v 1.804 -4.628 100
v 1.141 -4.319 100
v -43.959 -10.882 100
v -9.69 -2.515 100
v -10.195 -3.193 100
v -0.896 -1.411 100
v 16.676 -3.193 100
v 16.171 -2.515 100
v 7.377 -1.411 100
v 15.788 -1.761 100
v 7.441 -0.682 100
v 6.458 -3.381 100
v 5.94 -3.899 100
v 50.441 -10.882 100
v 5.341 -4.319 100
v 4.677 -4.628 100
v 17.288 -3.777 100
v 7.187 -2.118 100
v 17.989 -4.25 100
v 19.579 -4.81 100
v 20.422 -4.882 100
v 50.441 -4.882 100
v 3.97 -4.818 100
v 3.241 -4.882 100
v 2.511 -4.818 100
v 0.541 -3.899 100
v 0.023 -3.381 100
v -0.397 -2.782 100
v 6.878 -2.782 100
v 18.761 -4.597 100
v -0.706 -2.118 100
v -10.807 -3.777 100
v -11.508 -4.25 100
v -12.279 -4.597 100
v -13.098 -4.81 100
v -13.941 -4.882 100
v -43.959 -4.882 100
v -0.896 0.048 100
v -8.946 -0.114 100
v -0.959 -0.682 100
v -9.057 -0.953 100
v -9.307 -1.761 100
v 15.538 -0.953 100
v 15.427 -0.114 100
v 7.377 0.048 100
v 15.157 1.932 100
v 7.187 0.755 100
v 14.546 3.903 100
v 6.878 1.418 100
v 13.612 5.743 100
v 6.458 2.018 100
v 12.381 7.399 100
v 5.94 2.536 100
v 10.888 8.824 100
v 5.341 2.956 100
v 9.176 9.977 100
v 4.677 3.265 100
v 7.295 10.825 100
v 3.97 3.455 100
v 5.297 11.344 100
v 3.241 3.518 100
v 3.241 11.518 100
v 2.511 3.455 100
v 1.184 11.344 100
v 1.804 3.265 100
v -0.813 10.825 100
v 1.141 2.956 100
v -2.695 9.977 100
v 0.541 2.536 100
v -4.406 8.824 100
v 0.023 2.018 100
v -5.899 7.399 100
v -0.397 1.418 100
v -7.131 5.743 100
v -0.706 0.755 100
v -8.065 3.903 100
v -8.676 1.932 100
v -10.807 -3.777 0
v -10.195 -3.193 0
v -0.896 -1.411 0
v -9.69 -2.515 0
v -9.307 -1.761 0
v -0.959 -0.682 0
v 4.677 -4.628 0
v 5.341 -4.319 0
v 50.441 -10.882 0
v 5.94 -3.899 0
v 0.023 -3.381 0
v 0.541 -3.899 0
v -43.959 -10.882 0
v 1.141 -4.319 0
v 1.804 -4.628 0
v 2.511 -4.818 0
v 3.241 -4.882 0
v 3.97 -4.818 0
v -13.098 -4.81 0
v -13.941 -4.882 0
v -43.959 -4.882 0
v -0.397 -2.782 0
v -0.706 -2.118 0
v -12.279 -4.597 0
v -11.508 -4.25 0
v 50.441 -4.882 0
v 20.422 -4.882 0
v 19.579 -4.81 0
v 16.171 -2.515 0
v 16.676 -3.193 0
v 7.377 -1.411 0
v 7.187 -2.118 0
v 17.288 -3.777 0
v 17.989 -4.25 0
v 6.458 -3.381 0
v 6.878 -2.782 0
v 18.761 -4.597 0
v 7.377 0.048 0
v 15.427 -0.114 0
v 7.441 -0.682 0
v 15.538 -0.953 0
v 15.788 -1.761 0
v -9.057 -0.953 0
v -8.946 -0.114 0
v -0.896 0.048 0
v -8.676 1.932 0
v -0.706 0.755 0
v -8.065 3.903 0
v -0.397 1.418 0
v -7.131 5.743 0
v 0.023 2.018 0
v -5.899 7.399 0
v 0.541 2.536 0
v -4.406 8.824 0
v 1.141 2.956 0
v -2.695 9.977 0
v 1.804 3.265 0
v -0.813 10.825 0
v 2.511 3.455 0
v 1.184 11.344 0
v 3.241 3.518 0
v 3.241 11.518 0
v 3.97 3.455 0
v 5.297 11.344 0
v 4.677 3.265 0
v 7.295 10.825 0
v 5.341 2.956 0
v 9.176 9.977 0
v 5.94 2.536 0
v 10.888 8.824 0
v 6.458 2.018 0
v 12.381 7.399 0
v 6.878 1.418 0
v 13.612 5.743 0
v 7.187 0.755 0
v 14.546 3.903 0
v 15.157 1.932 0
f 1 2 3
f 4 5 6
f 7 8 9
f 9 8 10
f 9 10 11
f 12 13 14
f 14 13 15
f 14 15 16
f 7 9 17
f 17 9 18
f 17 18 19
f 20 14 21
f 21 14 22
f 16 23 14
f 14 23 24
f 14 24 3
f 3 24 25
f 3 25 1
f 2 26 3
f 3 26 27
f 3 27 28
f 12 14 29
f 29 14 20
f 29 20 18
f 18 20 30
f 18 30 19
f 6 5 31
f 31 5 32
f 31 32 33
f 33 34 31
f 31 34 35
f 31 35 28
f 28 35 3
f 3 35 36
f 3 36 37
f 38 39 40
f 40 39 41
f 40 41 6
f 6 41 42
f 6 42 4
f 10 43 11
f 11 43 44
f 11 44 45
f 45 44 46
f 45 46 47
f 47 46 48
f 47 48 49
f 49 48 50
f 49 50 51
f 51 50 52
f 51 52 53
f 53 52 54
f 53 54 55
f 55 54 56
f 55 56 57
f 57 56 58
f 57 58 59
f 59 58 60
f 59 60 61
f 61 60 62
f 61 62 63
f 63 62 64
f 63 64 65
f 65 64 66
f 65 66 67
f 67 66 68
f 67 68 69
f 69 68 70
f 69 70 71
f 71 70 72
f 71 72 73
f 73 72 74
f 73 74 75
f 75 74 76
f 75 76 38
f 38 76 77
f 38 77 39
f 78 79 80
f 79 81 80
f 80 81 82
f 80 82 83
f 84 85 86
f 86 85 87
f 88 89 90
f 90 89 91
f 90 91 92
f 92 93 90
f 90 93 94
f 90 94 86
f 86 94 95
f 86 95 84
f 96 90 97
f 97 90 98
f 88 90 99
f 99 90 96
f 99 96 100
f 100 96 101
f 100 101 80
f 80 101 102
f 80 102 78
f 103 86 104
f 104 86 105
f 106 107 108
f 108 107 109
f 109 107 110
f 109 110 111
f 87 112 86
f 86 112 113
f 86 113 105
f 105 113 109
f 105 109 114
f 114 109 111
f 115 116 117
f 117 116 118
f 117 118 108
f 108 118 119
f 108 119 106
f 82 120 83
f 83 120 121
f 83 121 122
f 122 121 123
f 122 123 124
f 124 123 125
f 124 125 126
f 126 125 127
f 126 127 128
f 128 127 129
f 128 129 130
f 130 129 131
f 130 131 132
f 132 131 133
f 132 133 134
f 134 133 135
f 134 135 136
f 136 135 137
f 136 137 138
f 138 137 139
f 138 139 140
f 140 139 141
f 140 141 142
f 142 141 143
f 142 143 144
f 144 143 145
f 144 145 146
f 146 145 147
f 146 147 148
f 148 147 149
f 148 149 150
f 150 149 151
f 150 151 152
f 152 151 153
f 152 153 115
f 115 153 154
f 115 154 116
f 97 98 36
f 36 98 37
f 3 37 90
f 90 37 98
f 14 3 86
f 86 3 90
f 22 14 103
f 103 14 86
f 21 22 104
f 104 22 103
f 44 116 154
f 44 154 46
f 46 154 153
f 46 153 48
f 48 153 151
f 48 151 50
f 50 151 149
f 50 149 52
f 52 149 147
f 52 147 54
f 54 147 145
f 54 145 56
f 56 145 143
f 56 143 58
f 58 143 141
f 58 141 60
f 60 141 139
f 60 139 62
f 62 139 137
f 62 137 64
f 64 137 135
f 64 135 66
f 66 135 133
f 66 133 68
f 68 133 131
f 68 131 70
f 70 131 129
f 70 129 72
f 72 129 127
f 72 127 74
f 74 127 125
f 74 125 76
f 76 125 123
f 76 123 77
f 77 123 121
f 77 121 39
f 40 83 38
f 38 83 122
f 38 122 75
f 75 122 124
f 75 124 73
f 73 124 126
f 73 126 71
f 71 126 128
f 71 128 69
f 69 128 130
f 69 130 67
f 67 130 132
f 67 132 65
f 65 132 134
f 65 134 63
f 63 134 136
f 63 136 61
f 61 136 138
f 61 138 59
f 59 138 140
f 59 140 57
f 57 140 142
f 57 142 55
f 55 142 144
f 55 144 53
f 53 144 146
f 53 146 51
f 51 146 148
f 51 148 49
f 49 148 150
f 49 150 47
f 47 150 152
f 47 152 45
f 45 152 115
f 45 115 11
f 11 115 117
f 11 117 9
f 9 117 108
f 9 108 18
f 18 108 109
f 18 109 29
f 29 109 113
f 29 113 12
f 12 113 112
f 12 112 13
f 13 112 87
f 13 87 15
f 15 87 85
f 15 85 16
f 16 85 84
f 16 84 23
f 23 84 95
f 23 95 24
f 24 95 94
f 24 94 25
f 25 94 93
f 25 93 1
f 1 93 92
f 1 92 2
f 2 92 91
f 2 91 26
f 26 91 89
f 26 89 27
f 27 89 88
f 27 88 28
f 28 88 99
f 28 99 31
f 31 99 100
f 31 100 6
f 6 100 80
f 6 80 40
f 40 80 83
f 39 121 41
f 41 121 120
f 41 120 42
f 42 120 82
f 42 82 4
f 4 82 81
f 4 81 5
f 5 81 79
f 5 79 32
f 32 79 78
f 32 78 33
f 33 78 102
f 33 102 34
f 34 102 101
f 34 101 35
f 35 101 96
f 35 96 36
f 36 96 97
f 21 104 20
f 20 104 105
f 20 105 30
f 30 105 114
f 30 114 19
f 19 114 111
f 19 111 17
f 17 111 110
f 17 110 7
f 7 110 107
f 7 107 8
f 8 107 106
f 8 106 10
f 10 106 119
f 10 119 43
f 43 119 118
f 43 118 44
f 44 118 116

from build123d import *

# Parameters (mm, degrees)
SKETCH2_R           = 4.2
BOSS_EXTRUDE1_DEPTH = 100
FILLET1_R           = 5


with BuildPart() as part:
    # Sketch2 → Boss-Extrude1 (new body)
    with BuildSketch(Plane.XY):
        with BuildLine():
            Line((15.440624277, -4.881535018), (15.440624277, -0.681535018))
            ThreePointArc((15.440624277, -0.681535018), (3.240624277, 11.518464982), (-8.959375723, -0.681535018))
            Line((-8.959375723, -0.681535018), (-8.959375723, -4.881535018))
            Line((-8.959375723, -4.881535018), (-43.959375723, -4.881535018))
            Line((-43.959375723, -4.881535018), (-43.959375723, -10.881535018))
            Line((-43.959375723, -10.881535018), (50.440624277, -10.881535018))
            Line((50.440624277, -10.881535018), (50.440624277, -4.881535018))
            Line((50.440624277, -4.881535018), (15.440624277, -4.881535018))
        make_face()
        with Locations((3.240624277, -0.681535018)):
            Circle(SKETCH2_R, mode=Mode.SUBTRACT)
    extrude(amount=BOSS_EXTRUDE1_DEPTH)

    # Fillet1
    fillet1_edges = [part.edges().sort_by_distance(p)[0] for p in [
        (-8.959375723, -4.881535018, 50),
        (15.440624277, -4.881535018, 50),
    ]]
    fillet(fillet1_edges, radius=FILLET1_R)


solid = part.part
